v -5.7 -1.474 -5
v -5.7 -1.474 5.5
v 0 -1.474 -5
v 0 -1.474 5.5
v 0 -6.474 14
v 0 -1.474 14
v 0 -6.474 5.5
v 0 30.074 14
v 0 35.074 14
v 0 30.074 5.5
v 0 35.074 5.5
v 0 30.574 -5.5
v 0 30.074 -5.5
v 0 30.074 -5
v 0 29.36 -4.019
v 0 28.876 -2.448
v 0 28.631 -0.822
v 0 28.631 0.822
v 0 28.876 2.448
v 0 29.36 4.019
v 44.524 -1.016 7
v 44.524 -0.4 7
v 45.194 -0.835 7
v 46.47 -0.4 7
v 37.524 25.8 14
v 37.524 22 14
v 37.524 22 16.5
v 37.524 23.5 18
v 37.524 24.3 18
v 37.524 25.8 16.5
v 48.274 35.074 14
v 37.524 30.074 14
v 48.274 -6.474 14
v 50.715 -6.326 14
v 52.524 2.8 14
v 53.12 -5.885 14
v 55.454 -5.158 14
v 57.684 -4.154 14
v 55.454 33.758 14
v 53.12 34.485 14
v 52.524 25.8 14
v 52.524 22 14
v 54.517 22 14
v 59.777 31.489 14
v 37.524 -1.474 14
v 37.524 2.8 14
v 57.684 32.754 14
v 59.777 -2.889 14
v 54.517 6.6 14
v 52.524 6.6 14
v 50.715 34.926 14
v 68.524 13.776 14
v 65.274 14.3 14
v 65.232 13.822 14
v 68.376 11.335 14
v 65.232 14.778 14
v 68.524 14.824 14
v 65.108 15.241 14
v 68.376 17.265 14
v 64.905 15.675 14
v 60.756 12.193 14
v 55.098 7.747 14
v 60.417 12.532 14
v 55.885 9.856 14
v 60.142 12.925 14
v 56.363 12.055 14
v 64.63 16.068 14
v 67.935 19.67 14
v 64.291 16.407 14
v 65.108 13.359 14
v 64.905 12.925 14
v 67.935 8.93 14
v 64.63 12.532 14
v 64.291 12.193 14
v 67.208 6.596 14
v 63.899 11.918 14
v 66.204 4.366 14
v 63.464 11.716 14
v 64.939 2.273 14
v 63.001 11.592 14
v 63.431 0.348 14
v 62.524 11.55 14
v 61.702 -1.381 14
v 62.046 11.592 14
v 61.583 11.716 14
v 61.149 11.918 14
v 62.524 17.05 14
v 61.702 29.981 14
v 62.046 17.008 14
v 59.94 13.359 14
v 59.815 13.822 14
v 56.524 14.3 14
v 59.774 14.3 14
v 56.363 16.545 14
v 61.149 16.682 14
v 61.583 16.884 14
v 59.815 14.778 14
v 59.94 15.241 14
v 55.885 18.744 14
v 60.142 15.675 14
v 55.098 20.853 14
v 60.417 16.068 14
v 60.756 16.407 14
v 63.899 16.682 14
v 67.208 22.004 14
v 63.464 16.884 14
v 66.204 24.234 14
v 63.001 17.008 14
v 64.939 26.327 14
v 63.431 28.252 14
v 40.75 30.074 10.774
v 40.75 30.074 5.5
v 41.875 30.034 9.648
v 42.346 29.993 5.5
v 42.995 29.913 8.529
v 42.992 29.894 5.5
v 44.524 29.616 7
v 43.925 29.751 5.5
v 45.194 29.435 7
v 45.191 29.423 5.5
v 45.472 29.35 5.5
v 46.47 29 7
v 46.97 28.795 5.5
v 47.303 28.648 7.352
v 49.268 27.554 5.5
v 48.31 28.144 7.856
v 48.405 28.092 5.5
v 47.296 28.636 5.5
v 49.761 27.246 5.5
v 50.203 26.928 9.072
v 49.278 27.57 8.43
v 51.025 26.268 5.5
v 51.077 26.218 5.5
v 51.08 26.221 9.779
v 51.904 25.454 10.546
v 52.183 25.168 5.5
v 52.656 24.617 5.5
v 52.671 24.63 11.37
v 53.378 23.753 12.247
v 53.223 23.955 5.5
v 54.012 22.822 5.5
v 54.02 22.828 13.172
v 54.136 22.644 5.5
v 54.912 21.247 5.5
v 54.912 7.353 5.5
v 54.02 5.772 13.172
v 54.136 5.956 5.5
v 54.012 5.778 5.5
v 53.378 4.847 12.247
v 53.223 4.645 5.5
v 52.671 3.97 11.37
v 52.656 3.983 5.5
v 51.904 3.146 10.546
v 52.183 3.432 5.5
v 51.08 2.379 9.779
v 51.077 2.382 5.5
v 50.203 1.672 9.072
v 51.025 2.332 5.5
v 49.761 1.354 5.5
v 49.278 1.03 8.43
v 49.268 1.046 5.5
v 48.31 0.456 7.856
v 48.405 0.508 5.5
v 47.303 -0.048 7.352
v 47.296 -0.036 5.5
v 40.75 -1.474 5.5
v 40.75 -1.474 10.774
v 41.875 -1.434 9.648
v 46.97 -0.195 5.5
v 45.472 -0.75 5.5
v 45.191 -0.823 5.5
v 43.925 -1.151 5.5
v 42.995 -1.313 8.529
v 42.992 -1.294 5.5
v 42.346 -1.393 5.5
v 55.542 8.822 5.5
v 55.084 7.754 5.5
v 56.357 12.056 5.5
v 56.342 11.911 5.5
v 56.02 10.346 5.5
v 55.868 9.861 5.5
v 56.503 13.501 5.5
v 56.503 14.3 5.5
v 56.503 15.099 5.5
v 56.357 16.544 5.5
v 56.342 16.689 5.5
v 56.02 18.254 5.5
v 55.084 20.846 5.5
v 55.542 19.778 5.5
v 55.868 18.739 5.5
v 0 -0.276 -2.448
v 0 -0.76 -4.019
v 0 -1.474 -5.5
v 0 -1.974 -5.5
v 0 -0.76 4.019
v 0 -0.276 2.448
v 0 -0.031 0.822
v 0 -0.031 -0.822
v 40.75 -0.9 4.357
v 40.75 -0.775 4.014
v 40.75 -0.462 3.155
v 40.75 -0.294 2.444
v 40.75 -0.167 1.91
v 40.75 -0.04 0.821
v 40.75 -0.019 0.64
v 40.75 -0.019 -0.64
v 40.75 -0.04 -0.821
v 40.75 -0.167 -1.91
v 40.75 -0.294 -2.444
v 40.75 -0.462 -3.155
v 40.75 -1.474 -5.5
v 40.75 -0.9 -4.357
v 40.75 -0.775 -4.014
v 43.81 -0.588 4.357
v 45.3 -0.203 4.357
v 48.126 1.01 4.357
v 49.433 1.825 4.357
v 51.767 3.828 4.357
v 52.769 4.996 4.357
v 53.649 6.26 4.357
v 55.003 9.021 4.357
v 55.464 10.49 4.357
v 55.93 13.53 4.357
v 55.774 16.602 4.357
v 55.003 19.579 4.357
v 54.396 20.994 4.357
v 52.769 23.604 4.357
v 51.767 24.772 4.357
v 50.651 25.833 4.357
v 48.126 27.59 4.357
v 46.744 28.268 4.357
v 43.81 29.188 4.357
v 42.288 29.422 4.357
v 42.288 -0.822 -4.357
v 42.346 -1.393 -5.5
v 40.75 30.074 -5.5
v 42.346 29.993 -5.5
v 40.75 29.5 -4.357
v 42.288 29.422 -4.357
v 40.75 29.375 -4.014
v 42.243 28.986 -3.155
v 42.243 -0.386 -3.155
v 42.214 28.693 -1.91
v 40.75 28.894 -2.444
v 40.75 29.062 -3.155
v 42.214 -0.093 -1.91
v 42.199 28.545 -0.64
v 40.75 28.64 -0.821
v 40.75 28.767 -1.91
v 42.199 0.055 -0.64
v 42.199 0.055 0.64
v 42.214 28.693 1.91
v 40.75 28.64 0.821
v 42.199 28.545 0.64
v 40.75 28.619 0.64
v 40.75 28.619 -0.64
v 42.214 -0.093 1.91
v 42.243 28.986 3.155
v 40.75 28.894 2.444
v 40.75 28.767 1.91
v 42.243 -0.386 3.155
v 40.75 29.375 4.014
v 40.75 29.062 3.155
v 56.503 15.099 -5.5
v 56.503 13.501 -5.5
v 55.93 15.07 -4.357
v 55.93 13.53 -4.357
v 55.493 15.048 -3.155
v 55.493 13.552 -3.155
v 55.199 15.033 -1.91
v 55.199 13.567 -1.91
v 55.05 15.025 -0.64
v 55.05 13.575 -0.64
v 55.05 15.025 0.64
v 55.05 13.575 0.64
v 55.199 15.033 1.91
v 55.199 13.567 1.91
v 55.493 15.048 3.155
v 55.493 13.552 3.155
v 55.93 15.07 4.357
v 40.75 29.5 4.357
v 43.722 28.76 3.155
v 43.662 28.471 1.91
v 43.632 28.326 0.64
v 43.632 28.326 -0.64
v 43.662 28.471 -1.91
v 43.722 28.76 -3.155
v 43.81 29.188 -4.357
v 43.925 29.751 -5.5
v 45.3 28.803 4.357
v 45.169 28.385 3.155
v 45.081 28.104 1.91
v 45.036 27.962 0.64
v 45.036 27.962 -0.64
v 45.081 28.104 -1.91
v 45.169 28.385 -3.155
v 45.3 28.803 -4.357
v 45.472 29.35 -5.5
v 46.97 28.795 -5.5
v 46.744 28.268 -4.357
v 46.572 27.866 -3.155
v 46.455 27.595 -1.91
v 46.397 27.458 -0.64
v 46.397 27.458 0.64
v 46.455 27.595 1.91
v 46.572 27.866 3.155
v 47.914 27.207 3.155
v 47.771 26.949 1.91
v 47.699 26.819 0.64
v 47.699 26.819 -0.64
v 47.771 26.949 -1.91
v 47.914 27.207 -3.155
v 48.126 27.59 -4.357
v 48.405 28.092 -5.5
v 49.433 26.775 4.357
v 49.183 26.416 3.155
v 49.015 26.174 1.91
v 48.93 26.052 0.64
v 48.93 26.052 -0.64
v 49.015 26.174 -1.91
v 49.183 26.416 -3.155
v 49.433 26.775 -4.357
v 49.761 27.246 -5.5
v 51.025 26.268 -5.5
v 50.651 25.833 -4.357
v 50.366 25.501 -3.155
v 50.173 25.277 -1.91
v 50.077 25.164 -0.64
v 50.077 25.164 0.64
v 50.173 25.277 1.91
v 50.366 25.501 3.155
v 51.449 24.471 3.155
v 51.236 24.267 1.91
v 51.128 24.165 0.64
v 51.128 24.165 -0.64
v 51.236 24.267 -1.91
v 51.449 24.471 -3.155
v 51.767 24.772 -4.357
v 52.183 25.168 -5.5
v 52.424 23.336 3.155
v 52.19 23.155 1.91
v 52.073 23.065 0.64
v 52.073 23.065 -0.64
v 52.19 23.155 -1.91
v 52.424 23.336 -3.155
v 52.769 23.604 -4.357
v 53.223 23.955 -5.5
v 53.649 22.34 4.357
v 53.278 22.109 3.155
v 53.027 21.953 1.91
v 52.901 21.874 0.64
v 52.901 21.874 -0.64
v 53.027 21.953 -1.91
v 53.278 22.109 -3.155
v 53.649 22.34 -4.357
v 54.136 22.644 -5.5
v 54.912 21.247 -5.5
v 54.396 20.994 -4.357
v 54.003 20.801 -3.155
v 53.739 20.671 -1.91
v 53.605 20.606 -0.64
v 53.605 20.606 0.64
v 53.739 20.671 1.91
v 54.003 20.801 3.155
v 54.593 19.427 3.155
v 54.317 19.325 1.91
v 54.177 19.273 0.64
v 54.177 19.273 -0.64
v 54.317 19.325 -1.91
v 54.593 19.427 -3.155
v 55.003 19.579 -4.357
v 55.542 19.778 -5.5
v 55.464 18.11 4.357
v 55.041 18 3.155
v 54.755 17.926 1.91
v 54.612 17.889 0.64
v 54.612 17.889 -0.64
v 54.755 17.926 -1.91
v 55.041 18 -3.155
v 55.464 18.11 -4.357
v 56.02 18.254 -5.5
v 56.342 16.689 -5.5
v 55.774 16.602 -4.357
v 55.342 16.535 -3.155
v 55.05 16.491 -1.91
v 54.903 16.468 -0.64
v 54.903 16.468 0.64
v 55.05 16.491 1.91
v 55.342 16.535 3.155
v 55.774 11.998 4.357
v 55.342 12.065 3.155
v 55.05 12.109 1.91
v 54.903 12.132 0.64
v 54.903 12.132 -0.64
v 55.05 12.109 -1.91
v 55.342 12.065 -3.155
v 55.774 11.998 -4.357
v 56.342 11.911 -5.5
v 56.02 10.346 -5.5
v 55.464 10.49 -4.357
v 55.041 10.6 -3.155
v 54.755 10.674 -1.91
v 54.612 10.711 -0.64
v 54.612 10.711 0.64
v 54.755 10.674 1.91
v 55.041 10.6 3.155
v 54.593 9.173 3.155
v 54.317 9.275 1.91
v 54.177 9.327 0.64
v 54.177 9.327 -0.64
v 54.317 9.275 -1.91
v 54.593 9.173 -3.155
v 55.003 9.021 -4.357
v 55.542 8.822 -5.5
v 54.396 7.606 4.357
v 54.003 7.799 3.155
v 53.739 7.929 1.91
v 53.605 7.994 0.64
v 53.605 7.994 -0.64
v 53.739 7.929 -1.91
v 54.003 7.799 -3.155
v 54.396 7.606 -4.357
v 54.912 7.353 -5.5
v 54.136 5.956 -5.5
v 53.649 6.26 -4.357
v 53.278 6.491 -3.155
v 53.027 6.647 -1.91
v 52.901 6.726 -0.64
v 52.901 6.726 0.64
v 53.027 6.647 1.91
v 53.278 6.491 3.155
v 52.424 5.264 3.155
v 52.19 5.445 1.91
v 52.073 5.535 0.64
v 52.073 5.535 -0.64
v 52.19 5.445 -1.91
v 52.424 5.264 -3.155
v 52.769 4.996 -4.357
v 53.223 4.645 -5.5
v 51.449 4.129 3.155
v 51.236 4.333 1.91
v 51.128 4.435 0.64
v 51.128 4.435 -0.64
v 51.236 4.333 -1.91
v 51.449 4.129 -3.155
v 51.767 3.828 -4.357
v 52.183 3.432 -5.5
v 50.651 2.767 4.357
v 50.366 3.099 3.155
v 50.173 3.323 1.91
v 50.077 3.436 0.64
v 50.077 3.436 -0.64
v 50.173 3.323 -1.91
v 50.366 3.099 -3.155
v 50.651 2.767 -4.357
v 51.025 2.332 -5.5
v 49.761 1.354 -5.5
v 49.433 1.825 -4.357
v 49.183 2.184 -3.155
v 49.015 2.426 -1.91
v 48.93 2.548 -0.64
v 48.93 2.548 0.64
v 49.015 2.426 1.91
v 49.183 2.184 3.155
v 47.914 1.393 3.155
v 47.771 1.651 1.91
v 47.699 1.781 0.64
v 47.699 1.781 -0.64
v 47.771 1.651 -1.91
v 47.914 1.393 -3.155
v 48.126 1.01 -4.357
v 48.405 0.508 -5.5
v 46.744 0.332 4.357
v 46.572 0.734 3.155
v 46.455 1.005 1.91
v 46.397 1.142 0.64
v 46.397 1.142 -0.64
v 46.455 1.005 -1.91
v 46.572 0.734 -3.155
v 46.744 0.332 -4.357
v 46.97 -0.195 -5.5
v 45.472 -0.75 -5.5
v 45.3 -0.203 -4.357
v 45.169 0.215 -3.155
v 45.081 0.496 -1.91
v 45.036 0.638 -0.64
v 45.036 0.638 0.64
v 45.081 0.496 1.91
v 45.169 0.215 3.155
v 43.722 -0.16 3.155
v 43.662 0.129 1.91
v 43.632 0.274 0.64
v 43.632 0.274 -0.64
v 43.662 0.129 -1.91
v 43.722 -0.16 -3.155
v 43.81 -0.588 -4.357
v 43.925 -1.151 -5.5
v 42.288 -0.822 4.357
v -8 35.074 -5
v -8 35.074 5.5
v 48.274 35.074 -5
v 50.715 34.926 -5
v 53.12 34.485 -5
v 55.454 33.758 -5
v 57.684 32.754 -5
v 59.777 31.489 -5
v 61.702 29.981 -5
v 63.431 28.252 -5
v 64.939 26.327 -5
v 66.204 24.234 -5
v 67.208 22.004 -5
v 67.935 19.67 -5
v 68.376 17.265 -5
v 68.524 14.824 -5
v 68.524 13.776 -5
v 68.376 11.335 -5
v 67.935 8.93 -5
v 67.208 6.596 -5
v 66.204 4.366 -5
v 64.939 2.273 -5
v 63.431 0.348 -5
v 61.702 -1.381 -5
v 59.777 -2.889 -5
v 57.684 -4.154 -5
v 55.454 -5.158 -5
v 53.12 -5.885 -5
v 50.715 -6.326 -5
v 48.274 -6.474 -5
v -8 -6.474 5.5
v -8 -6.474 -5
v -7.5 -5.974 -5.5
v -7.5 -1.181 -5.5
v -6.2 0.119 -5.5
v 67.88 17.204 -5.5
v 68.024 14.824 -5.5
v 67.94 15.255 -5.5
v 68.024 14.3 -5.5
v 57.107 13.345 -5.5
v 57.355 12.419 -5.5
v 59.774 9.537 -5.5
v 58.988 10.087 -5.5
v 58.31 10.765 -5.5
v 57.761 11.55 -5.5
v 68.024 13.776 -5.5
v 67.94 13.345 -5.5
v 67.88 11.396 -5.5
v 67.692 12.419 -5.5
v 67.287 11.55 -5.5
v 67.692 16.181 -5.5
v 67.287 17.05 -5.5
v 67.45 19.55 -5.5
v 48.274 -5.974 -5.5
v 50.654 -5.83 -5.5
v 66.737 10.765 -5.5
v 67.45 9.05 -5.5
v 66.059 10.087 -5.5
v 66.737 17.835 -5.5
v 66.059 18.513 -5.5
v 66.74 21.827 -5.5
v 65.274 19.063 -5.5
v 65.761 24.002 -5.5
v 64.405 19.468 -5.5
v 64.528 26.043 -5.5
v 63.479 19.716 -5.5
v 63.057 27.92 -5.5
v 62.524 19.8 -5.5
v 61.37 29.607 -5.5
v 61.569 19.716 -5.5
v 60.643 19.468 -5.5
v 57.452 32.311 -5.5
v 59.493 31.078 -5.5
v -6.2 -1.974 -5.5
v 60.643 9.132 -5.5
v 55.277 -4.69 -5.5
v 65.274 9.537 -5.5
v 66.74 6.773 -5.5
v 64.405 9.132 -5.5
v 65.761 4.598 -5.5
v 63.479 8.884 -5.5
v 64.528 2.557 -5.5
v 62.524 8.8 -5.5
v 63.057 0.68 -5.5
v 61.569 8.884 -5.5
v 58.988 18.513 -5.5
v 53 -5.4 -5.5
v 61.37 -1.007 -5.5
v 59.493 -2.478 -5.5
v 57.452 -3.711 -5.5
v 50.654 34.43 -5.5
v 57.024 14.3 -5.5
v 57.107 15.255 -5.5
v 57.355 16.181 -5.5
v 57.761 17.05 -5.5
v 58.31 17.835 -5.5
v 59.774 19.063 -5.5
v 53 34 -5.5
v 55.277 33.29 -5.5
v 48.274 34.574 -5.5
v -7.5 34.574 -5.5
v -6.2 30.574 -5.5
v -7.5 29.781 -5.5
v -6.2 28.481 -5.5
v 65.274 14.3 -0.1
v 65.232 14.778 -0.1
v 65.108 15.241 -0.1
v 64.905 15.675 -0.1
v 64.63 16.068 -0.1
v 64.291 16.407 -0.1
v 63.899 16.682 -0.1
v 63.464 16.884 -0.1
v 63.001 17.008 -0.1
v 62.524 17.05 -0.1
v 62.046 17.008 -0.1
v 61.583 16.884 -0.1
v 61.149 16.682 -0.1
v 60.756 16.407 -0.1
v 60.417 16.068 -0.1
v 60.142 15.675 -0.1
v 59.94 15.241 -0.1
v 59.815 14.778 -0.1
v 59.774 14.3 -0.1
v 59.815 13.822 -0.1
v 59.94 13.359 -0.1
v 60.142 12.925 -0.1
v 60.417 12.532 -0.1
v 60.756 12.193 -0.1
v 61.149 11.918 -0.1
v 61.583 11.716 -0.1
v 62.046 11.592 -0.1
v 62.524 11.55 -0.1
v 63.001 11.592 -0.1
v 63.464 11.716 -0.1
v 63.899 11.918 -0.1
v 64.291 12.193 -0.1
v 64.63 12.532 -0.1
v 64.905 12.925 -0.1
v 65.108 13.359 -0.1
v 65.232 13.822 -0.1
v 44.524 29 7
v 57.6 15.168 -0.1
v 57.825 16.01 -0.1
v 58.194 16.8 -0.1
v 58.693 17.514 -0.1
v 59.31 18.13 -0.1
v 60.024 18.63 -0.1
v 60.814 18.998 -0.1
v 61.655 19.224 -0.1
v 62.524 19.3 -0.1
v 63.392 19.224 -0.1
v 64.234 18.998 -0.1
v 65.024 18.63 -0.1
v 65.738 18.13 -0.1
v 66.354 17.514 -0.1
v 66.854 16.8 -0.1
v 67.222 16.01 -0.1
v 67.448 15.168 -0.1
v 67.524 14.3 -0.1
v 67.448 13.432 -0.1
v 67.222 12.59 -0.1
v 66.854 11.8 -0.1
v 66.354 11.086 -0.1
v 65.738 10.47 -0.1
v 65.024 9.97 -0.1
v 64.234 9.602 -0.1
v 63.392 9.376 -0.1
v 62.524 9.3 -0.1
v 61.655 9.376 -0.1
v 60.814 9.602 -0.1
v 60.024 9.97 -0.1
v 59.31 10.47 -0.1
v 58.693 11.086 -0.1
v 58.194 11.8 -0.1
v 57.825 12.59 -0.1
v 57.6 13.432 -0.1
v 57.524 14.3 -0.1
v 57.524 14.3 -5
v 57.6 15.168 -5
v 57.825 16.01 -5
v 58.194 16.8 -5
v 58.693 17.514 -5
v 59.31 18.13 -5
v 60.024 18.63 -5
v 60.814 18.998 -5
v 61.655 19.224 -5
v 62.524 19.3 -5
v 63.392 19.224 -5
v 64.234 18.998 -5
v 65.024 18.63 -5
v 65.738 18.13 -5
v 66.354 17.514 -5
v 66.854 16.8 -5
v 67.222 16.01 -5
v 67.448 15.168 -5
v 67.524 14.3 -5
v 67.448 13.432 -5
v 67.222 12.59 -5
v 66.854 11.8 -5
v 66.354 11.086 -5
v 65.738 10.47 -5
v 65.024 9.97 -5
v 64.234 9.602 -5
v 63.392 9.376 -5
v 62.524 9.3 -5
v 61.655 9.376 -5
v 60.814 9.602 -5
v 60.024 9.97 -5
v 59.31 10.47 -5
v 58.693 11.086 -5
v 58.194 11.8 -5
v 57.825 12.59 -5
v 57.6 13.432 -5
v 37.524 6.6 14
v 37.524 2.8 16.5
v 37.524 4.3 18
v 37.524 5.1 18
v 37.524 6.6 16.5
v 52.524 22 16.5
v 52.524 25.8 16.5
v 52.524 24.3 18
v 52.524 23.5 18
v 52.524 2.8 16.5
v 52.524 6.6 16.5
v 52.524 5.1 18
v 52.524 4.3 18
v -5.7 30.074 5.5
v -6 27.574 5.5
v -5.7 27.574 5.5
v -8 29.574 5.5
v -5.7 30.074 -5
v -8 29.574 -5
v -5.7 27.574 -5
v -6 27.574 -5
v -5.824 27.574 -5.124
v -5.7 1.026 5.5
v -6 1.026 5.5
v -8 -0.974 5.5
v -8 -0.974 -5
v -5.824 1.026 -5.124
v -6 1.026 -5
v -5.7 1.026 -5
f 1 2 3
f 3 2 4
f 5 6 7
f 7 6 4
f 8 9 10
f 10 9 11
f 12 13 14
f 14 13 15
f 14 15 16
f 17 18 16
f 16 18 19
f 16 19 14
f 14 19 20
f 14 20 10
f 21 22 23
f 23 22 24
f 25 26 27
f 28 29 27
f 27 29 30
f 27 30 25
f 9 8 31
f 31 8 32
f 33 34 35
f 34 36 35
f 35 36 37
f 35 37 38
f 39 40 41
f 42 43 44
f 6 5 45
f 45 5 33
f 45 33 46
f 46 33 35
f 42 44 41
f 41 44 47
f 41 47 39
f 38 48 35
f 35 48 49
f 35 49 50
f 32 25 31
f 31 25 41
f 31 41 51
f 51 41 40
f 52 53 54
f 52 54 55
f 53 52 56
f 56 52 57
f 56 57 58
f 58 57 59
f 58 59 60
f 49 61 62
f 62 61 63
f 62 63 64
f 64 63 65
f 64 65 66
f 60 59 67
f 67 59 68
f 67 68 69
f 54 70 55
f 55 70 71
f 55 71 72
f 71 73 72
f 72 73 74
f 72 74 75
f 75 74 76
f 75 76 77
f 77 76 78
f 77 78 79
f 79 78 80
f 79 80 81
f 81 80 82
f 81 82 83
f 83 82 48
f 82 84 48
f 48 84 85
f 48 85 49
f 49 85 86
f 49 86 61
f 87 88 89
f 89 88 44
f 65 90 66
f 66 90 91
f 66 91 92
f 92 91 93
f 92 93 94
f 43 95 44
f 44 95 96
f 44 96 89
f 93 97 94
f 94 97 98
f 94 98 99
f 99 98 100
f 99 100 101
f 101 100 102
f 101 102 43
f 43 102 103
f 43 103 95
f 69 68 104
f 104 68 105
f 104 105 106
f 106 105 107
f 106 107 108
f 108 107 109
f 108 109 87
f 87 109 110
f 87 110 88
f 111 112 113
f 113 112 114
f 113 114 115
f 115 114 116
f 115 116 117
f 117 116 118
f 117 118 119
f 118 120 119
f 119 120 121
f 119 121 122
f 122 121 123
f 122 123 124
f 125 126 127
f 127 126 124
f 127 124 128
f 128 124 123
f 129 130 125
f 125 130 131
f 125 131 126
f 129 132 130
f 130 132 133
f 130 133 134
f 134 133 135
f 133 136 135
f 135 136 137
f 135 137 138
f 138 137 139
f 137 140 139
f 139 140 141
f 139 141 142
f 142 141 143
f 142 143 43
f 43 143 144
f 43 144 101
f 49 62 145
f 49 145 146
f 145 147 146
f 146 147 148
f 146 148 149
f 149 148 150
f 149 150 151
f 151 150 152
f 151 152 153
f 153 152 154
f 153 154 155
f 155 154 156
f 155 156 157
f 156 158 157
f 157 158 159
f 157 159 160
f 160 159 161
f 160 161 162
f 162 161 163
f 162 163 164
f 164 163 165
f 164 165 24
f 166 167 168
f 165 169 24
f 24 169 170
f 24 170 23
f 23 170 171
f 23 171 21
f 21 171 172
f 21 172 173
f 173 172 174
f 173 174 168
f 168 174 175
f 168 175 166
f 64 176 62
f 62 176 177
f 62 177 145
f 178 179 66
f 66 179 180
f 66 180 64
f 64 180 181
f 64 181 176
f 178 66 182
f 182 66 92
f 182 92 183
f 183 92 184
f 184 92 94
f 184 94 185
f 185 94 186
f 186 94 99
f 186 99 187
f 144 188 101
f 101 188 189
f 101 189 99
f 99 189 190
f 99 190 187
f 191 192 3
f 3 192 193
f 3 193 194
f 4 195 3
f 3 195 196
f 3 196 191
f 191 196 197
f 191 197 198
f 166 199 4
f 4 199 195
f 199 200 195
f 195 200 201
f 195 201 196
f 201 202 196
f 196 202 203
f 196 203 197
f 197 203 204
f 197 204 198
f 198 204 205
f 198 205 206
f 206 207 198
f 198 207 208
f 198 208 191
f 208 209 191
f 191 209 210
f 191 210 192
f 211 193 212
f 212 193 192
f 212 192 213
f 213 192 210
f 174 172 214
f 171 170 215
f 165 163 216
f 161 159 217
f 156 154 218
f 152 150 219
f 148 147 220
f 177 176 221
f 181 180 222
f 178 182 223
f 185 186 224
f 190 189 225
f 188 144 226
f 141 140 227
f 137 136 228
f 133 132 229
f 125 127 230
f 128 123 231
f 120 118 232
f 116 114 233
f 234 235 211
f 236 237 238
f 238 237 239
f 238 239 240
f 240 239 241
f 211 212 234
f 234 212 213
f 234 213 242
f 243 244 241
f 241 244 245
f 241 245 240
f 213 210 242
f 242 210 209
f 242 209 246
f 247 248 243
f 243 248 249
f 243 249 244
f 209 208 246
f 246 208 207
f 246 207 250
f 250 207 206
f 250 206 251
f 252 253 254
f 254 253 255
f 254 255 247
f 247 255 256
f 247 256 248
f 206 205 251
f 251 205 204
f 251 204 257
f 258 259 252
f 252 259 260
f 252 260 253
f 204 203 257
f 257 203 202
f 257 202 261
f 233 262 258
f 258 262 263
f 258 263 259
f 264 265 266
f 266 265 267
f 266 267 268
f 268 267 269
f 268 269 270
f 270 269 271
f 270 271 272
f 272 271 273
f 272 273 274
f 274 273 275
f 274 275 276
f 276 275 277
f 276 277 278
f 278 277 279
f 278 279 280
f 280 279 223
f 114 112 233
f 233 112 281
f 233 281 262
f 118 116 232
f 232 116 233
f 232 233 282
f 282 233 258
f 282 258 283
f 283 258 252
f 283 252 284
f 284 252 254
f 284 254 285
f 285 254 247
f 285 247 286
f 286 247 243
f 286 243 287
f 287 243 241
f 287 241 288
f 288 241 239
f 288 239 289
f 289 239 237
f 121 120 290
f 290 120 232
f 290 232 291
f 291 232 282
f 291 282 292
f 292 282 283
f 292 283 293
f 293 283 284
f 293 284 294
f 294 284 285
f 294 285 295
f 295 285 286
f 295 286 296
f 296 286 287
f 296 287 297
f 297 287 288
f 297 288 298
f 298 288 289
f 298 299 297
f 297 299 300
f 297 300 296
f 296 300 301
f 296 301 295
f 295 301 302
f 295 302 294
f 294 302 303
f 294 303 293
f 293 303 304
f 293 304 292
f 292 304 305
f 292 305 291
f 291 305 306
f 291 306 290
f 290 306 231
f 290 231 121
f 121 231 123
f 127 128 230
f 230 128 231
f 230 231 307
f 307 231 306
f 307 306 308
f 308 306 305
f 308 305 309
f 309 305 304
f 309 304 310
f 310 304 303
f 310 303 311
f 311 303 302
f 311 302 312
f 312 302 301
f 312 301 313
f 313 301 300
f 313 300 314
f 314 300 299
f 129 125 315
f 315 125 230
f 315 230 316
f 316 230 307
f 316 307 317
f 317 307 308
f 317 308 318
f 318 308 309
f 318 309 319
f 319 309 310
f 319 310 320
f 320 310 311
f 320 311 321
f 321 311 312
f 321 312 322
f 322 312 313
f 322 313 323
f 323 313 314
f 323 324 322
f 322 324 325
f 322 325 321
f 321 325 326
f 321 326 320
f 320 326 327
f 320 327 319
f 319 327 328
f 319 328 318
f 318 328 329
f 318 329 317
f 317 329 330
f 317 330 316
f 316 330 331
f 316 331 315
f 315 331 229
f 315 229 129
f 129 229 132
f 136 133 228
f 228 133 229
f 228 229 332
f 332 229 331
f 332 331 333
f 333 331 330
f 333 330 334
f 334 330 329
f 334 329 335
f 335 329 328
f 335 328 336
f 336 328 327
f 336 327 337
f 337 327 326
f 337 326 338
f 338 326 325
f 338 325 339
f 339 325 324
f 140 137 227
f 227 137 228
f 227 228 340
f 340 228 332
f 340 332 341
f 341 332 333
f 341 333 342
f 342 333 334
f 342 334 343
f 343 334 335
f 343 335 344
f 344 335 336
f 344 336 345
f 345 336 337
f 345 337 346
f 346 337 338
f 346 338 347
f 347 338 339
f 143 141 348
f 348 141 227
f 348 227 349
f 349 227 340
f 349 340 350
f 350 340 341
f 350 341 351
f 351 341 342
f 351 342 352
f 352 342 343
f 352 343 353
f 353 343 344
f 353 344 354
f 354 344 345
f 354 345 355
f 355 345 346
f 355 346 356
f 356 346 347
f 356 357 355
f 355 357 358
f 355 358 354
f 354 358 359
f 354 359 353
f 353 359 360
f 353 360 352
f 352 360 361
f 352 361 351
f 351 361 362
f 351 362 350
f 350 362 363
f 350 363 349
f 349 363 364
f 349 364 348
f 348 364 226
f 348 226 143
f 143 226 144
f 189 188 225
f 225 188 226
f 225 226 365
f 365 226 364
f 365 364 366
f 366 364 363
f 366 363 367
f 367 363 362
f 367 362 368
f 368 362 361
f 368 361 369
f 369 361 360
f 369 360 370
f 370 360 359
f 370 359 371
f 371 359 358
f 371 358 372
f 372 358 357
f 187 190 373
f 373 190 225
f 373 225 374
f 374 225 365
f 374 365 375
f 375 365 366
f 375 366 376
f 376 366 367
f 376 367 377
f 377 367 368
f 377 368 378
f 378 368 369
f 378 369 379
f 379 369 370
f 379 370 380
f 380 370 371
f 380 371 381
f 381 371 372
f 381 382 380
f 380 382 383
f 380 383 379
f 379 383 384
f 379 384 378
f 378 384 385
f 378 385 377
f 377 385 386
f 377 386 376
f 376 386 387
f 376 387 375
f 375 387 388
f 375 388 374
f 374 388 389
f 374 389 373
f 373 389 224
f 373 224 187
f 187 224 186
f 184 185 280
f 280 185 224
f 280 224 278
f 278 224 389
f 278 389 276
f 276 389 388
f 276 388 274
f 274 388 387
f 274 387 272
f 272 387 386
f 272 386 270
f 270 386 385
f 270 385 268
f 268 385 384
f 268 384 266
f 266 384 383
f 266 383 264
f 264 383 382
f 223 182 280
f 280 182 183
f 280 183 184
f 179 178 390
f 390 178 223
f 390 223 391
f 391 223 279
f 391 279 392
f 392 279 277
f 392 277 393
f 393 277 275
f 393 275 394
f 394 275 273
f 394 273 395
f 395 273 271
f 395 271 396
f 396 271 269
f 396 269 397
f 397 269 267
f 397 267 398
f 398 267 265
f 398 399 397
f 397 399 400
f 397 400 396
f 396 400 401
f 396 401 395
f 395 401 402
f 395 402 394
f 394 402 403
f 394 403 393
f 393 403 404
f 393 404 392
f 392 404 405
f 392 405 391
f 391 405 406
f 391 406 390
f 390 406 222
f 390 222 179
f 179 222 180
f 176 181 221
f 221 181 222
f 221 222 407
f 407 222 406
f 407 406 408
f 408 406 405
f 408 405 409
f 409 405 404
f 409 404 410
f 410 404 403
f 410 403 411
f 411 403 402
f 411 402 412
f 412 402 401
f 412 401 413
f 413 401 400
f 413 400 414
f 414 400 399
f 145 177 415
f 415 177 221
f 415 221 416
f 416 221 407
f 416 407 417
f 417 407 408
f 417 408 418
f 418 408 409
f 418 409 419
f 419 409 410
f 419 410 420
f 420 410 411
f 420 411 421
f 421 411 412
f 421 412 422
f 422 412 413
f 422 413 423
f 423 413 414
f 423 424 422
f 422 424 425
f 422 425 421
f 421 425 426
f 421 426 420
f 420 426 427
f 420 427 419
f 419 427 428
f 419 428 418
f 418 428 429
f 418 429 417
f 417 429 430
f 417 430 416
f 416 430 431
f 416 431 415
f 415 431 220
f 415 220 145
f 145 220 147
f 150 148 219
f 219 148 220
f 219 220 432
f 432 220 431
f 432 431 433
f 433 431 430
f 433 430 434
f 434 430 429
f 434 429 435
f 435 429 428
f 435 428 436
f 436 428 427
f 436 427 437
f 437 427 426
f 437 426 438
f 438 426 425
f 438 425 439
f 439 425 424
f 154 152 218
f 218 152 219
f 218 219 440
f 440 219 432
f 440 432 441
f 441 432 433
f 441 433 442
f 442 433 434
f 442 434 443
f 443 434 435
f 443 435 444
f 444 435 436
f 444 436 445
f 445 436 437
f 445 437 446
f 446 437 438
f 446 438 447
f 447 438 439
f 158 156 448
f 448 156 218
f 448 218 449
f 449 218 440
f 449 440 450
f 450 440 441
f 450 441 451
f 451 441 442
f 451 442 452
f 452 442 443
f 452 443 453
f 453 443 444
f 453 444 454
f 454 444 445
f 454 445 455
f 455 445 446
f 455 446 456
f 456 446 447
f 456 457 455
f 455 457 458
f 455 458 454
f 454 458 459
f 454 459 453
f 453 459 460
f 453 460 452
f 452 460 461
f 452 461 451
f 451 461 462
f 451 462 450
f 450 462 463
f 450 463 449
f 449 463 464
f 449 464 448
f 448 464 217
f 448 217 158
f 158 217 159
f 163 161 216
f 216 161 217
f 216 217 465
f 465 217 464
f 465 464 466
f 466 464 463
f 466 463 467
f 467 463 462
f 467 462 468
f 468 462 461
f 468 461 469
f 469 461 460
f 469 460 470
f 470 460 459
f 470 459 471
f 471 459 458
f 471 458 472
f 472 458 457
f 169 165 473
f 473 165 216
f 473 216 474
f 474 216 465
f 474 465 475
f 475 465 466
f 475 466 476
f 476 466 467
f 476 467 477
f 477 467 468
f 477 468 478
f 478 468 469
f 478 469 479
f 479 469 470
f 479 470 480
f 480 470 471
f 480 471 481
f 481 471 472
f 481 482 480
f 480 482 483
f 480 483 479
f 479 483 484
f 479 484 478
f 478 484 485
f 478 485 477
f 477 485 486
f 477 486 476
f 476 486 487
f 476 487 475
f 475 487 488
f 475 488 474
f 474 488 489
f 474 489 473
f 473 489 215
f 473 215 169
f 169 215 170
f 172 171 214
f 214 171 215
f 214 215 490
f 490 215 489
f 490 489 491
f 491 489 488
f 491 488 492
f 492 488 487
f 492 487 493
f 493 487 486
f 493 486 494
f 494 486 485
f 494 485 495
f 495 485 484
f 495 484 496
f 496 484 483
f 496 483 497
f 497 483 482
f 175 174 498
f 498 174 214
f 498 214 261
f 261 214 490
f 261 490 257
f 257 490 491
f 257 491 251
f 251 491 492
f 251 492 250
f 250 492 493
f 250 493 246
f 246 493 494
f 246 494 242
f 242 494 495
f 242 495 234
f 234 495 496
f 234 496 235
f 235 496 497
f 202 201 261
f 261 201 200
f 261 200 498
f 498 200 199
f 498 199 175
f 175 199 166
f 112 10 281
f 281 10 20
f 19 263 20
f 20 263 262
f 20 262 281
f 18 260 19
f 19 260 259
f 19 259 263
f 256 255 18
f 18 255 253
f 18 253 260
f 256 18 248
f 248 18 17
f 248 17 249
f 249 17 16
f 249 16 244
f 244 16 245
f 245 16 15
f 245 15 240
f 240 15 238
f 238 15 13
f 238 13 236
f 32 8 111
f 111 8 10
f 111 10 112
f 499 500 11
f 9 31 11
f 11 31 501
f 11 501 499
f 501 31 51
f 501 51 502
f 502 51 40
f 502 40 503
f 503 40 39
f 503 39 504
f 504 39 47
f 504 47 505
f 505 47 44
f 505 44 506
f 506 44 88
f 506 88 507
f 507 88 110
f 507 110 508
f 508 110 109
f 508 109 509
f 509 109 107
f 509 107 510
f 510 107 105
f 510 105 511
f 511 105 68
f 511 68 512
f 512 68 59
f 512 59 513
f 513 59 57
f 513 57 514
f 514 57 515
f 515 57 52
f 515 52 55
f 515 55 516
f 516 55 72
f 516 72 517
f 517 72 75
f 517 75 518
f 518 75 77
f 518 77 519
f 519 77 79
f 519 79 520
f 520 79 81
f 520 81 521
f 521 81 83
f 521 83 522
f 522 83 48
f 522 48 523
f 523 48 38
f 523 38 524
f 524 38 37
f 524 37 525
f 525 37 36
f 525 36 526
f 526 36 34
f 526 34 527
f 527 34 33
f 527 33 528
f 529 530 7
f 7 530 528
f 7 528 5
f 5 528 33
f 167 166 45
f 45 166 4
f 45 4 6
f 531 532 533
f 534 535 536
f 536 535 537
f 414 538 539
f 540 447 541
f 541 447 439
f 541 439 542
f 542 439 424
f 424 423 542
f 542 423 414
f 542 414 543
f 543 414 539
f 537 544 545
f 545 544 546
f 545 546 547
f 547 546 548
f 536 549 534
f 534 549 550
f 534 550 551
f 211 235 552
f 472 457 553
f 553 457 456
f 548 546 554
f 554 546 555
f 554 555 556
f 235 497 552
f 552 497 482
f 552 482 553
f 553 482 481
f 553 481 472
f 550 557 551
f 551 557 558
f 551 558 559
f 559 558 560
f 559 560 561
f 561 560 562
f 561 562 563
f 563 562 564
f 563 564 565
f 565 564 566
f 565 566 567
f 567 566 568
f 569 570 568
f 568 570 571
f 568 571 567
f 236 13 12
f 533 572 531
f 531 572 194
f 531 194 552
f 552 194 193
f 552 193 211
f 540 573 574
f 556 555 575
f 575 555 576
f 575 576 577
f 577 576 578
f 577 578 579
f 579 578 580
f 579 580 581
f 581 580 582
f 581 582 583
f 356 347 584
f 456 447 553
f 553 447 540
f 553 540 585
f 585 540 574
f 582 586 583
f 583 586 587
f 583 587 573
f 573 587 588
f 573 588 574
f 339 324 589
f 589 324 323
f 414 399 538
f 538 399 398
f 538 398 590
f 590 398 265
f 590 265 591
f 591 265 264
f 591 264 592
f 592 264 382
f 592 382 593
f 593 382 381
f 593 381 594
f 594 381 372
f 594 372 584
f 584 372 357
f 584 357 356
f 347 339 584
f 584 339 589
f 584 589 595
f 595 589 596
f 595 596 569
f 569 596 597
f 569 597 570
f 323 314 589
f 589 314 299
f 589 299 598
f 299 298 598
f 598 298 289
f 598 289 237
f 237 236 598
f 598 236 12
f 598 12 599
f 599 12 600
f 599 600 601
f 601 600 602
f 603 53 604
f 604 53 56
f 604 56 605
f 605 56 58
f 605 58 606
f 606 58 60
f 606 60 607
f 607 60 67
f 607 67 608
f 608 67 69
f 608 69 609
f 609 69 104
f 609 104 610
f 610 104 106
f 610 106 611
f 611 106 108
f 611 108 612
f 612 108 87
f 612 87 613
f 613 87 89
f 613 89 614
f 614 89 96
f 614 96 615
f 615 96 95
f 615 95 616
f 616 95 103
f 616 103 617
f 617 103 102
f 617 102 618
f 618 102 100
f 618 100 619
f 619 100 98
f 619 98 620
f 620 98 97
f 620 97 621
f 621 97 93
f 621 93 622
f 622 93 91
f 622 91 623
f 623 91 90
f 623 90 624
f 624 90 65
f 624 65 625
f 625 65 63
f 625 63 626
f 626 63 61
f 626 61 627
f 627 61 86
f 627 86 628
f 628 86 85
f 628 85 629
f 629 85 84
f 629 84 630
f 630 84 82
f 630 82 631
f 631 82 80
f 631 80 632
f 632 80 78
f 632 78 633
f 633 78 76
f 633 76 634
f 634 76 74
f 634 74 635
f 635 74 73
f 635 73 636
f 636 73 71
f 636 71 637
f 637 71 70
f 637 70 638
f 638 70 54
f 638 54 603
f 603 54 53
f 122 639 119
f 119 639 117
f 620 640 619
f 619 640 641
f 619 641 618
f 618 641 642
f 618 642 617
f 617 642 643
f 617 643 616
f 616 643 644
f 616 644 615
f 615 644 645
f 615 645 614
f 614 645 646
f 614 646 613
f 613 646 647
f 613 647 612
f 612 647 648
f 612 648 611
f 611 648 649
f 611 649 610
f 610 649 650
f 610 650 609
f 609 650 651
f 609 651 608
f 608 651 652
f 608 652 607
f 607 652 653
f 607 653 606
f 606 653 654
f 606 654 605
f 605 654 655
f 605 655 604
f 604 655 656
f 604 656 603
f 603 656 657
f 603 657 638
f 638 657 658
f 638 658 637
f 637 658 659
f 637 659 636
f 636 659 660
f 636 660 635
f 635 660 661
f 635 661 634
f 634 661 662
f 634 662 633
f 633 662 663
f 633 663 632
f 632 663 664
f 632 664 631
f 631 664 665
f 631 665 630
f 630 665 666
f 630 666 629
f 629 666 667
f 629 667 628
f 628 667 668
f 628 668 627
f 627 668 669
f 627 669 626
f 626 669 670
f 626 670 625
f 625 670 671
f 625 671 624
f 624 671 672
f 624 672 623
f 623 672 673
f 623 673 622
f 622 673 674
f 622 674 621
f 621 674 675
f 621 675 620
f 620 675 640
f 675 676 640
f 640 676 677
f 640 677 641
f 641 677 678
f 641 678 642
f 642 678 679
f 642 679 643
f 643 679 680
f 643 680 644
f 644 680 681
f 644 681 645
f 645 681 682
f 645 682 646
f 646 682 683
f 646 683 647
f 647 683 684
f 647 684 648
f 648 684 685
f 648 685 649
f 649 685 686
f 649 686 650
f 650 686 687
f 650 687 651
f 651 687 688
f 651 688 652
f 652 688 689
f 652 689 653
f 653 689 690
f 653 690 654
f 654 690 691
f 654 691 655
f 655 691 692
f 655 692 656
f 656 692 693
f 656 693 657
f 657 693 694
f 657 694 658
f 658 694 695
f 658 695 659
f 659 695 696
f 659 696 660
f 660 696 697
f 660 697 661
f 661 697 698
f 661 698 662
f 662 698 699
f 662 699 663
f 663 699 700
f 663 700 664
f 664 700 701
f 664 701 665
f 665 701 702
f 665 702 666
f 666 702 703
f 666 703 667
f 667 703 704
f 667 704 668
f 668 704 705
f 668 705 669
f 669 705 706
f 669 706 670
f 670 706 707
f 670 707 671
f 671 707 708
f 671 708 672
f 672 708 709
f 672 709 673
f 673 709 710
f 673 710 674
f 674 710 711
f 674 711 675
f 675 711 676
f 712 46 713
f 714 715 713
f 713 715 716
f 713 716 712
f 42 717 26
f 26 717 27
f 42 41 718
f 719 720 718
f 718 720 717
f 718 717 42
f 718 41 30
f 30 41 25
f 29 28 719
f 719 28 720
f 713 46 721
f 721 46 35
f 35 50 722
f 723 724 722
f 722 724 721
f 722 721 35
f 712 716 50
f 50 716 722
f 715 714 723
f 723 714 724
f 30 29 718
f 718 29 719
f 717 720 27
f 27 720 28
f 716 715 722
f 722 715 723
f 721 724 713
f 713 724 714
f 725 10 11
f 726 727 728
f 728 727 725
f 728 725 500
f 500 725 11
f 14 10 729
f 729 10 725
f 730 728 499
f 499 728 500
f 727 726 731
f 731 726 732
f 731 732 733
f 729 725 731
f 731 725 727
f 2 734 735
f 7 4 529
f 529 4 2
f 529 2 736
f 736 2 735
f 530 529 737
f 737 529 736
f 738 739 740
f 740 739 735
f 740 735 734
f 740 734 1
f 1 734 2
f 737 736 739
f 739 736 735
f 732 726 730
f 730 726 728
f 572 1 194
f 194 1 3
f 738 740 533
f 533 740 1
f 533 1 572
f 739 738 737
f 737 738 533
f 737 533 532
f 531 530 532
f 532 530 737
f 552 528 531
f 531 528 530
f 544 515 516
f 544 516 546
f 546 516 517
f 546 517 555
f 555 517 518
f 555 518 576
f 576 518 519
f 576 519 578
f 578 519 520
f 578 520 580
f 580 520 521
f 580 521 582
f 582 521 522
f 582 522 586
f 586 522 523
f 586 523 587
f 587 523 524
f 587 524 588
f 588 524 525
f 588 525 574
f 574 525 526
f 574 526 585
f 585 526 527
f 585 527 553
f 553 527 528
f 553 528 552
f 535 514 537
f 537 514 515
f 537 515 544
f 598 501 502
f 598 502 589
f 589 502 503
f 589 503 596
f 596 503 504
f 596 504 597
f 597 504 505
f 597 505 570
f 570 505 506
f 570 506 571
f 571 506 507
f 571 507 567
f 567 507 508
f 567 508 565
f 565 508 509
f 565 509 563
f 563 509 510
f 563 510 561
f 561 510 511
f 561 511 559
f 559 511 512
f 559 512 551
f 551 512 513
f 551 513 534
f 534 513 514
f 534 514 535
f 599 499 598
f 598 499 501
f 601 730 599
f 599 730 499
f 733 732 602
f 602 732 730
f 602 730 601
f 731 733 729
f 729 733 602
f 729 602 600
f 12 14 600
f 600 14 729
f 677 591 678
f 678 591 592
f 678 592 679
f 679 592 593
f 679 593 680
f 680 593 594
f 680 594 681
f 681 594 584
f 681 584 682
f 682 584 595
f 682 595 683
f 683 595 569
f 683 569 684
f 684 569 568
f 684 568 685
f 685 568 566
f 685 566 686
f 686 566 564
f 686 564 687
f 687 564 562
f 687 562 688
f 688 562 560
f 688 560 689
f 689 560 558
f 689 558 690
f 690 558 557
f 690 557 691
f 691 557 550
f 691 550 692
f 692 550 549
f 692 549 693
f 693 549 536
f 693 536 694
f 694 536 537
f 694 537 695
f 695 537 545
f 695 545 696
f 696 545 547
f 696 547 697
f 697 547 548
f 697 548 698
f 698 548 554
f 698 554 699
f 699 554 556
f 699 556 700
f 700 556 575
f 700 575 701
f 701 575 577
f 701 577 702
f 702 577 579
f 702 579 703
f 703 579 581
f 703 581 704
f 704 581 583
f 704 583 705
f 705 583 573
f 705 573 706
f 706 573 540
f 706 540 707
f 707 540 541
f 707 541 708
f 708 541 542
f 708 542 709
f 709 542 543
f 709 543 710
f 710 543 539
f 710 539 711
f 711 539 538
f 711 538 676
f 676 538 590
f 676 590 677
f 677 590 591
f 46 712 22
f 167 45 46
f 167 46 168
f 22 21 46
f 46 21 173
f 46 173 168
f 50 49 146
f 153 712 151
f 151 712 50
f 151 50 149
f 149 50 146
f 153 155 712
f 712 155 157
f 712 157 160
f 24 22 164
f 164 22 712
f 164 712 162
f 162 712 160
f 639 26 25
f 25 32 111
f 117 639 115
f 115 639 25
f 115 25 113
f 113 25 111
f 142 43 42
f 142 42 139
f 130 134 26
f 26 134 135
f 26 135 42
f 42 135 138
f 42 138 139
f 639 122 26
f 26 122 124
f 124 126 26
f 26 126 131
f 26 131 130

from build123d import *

# Parameters (mm, degrees)
BOSS_EXTRUDE1_DEPTH                                 = 14
BOSS_EXTRUDE1_DEPTH_BACK                            = 5.5
SKETCH3_R                                           = 2.750000000000022
BOSS_EXTRUDE2_DEPTH                                 = 7
CBORE_FOR_M5_HEX_SOCKET_HEAD_CAP_SCREW2_D           = 5.5
CBORE_FOR_M5_HEX_SOCKET_HEAD_CAP_SCREW2_CBORE_D     = 10
CBORE_FOR_M5_HEX_SOCKET_HEAD_CAP_SCREW2_CBORE_DEPTH = 5.4
SKETCH11_W                                          = 15
SKETCH11_H                                          = 3.8000000000000007
BOSS_EXTRUDE3_DEPTH                                 = 4
CHAMFER1_SIZE                                       = 1.5
CUT_EXTRUDE1_DEPTH                                  = 7
SKETCH13_W                                          = 15
SKETCH13_H                                          = 15.400000000000002
CUT_EXTRUDE2_DEPTH                                  = 7
CUT_EXTRUDE3_DEPTH                                  = 7
SKETCH15_W                                          = 11
SKETCH15_H                                          = 5
BOSS_EXTRUDE4_DEPTH                                 = 8
SKETCH16_W                                          = 2.3
SKETCH16_H                                          = 2.5
BOSS_EXTRUDE5_DEPTH                                 = 11
CHAMFER4_SIZE                                       = 2
CHAMFER3_SIZE                                       = 0.5
CHAMFER5_SIZE                                       = 7


# Some blends are built 0.0001 mm under size
with BuildPart() as part:
    # Sweep1: sweep along a path in Sketch1
    with BuildLine(Plane.XY) as sweep1_path:
        Line((0, 0), (40.75, 0))
        ThreePointArc((40.75, 0), (55.05, 14.3), (40.75, 28.6))
        Line((40.75, 28.6), (0, 28.599999999999998))
    # Sketch2 → Sweep1 (sweep)
    with BuildSketch(Plane(origin=(0, 0, 0), x_dir=(0, 0, -1), z_dir=(1, 0, 0))):
        with BuildLine():
            Line((-5.500000000000001, -1.4737205583711734), (5.499999999999999, -1.4737205583711734))
            ThreePointArc((5.499999999999999, -1.4737205583711734), (-1.9e-16, 1.78e-15), (-5.500000000000001, -1.4737205583711734))
        make_face()
    sweep(path=sweep1_path.line)

    # Sketch3 → Boss-Extrude1 (add, two sides: drawn at the far end of the back side and taken through both)
    with BuildSketch(Plane.XY.offset(-BOSS_EXTRUDE1_DEPTH_BACK)):
        with BuildLine():
            Line((-7e-17, 30.07372055837117), (0, 35.07372055837117))
            Line((0, 35.07372055837117), (48.273720558371174, 35.07372055837117))
            ThreePointArc((48.273720558371174, 35.07372055837117), (62.59263287739877, 29.14263287739876), (68.52372055837118, 14.82372055837117))
            Line((68.52372055837118, 14.82372055837117), (68.52372055837118, 13.776279441628832))
            ThreePointArc((68.52372055837118, 13.776279441628832), (62.59263287739876, -0.5426328773987557), (48.273720558371174, -6.473720558371171))
            Line((48.273720558371174, -6.473720558371171), (0, -6.473720558371174))
            Line((0, -6.473720558371174), (0, -1.4737205583711734))
            Line((0, -1.4737205583711734), (40.75, -1.4737205583711734))
            ThreePointArc((40.75, -1.4737205583711734), (56.523720558371174, 14.3), (40.75, 30.073720558371175))
            Line((40.75, 30.073720558371175), (-7e-17, 30.07372055837117))
        make_face()
        with Locations((62.52372055837116, 14.299999999999999)):
            Circle(SKETCH3_R, mode=Mode.SUBTRACT)
    extrude(amount=BOSS_EXTRUDE1_DEPTH + BOSS_EXTRUDE1_DEPTH_BACK)

    # Sketch10 → Boss-Extrude2 (add)
    with BuildSketch(Plane.XY.offset(14)):
        Polygon((33.523720558371174, 30.07372055837117), (56.523720558371174, 30.07372055837117), (56.52372055837118, -1.473720558371177), (33.523720558371174, -1.4737205583711734), align=None)
    extrude(amount=-BOSS_EXTRUDE2_DEPTH)

    # CBORE for M5 Hex Socket Head Cap Screw2 (through all)
    with Locations(Plane(origin=(0, 0, -5.5), x_dir=(-1, 0, 0), z_dir=(0, 0, -1))):
        with Locations((-62.523720558, 14.3)):
            CounterBoreHole(CBORE_FOR_M5_HEX_SOCKET_HEAD_CAP_SCREW2_D / 2, CBORE_FOR_M5_HEX_SOCKET_HEAD_CAP_SCREW2_CBORE_D / 2, CBORE_FOR_M5_HEX_SOCKET_HEAD_CAP_SCREW2_CBORE_DEPTH)

    # Sketch11 → Boss-Extrude3 (add)
    with BuildSketch(Plane.XY.offset(14)):
        with Locations((45.02372055837117, 23.9)):
            Rectangle(SKETCH11_W, SKETCH11_H)
        Polygon((37.52372055837117, 6.599999999999998), (52.52372055837117, 6.599999999999998), (52.523720558371174, 2.799999999999997), (37.52372055837117, 2.799999999999997), align=None)
    extrude(amount=BOSS_EXTRUDE3_DEPTH)

    # Chamfer1
    chamfer1_edges = [part.edges().sort_by_distance(p)[0] for p in [
        (45.02372055837117, 22, 18),
        (45.02372055837117, 25.8, 18),
        (45.02372055837117, 2.799999999999997, 18),
        (45.02372055837117, 6.599999999999998, 18),
    ]]
    chamfer(chamfer1_edges, length=CHAMFER1_SIZE)

    # Sketch12 → Cut-Extrude1 (cut)
    with BuildSketch(Plane.XY.offset(14)):
        Polygon((33.523720558371174, 30.07372055837117), (37.52372055837117, 30.07372055837117), (37.52372055837118, -1.4737205583711734), (33.523720558371174, -1.4737205583711734), align=None)
    extrude(amount=-CUT_EXTRUDE1_DEPTH, mode=Mode.SUBTRACT)

    # Sketch13 → Cut-Extrude2 (cut)
    with BuildSketch(Plane.XY.offset(14)):
        with Locations((45.02372055837117, 14.299999999999999)):
            Rectangle(SKETCH13_W, SKETCH13_H)
    extrude(amount=-CUT_EXTRUDE2_DEPTH, mode=Mode.SUBTRACT)

    # Sketch14 → Cut-Extrude3 (cut)
    with BuildSketch(Plane(origin=(0, 0, 7), x_dir=(-1, 0, 0), z_dir=(0, 0, -1))):
        with BuildLine():
            Line((-52.52372055837117, 22), (-54.51663576381613, 22))
            ThreePointArc((-54.51663576381613, 22), (-56.52372055837116, 14.3), (-54.516635763816126, 6.599999999999999))
            Line((-54.516635763816126, 6.599999999999999), (-52.52372055837117, 6.599999999999998))
            Line((-52.52372055837117, 6.599999999999998), (-52.52372055837117, 22))
        make_face()
    extrude(amount=-CUT_EXTRUDE3_DEPTH, mode=Mode.SUBTRACT)

    # Sketch15 → Boss-Extrude4 (add)
    with BuildSketch(Plane.ZY):
        with Locations((4.4e-16, 32.57372055837117)):
            Rectangle(SKETCH15_W, SKETCH15_H)
    boss_extrude4 = extrude(amount=BOSS_EXTRUDE4_DEPTH)

    # Sketch16 → Boss-Extrude5 (add)
    with BuildSketch(Plane(origin=(0, 0, -5.5), x_dir=(-1, 0, 0), z_dir=(0, 0, -1))):
        with Locations((6.850000000000001, 28.82372055837117)):
            Rectangle(SKETCH16_W, SKETCH16_H)
    boss_extrude5 = extrude(amount=-BOSS_EXTRUDE5_DEPTH)

    # Mirror1: Boss-Extrude4, Boss-Extrude5 across plane
    add(boss_extrude4.mirror(Plane(origin=(-6.1e-16, 14.299999999999997, 0), x_dir=(0, 0, 1), z_dir=(4e-17, -1, 0))))
    add(boss_extrude5.mirror(Plane(origin=(-6.1e-16, 14.299999999999997, 0), x_dir=(0, 0, 1), z_dir=(4e-17, -1, 0))))

    # Chamfer4
    chamfer4_edges = [part.edges().sort_by_distance(p)[0] for p in [
        (-8.000000000000002, 27.57372055837117, 0),
        (-8, 1.026279441628823, 0),
    ]]
    chamfer(chamfer4_edges, length=CHAMFER4_SIZE)

    # Chamfer3
    # the kernel refuses this chamfer: 0.5 mm, written as the material it takes off along each edge
    with BuildSketch(Plane(origin=(-8, 28.287879064388214, -5.5), x_dir=(0.9996219169112968, 0, -0.027495876610585647), z_dir=(-2.4e-16, 1, 0))) as chamfer3_piece_1:
        Polygon((CHAMFER3_SIZE * 0.999621916911, -CHAMFER3_SIZE * 0.0274958766106), (-CHAMFER3_SIZE * 0.0274958766106, -CHAMFER3_SIZE * 0.999621916911), (0, 0), align=None)
    extrude(amount=8.071682987965907, mode=Mode.SUBTRACT)
    with BuildSketch(Plane(origin=(48.273720558371174, 35.073720558371164, -5.5), x_dir=(0, -0.9996219169112968, -0.02749587661058574), z_dir=(-1, 1.3e-16, 0))) as chamfer3_piece_2:
        Polygon((CHAMFER3_SIZE * 0.999621916911, CHAMFER3_SIZE * 0.0274958766106), (-CHAMFER3_SIZE * 0.0274958766106, CHAMFER3_SIZE * 0.999621916911), (0, 0), align=None)
    extrude(amount=57.55956205235414, mode=Mode.SUBTRACT)
    with BuildSketch(Plane(origin=(48.273720558371195, 14.823720558371178, -5.5), x_dir=(-1.05e-15, 1, 0), z_dir=(-1, -1.05e-15, 0))) as chamfer3_piece_3:
        Polygon((20.249999999999986 - CHAMFER3_SIZE, 0), (20.249999999999986, -CHAMFER3_SIZE), (20.249999999999986, 0), align=None)
    revolve(axis=Axis((48.273720558371195, 14.823720558371178, -5.5), (0, 0, -1)), revolution_arc=90.00000000000009, mode=Mode.SUBTRACT)
    with BuildSketch(Plane(origin=(68.52372055837118, 14.82372055837117, -5.5), x_dir=(-0.9996219169112968, 0, -0.02749587661058574), z_dir=(0, -1, 0))) as chamfer3_piece_4:
        Polygon((CHAMFER3_SIZE * 0.999621916911, -CHAMFER3_SIZE * 0.0274958766106), (-CHAMFER3_SIZE * 0.0274958766106, -CHAMFER3_SIZE * 0.999621916911), (0, 0), align=None)
    extrude(amount=1.0474411167423376, mode=Mode.SUBTRACT)
    with BuildSketch(Plane(origin=(-2.56e-15, 30.07372055837117, -5.5), x_dir=(0, 0.9996219169112968, -0.02749587661058555), z_dir=(-1, -9e-17, 0))) as chamfer3_piece_5:
        Polygon((CHAMFER3_SIZE * 0.999621916911, -CHAMFER3_SIZE * 0.0274958766106), (-CHAMFER3_SIZE * 0.0274958766106, -CHAMFER3_SIZE * 0.999621916911), (0, 0), align=None)
    extrude(amount=5.699999999999999, mode=Mode.SUBTRACT)
    with BuildSketch(Plane(origin=(-5.700000000000003, 26.287879064388214, -5.5), x_dir=(-0.9996219169112968, 0, -0.027495876610585647), z_dir=(0, 1, 0))) as chamfer3_piece_6:
        Polygon((CHAMFER3_SIZE * 0.999621916911, CHAMFER3_SIZE * 0.0274958766106), (-CHAMFER3_SIZE * 0.0274958766106, CHAMFER3_SIZE * 0.999621916911), (0, 0), align=None)
    extrude(amount=3.785841493982957, mode=Mode.SUBTRACT)
    with BuildSketch(Plane(origin=(48.27372055837117, 13.776279441628848, -5.5), x_dir=(1, -7.9e-16, 0), z_dir=(7.9e-16, 1, 0))) as chamfer3_piece_7:
        Polygon((20.250000000000014 - CHAMFER3_SIZE, 0), (20.250000000000014, -CHAMFER3_SIZE), (20.250000000000014, 0), align=None)
    revolve(axis=Axis((48.27372055837117, 13.776279441628848, -5.5), (0, 0, -1)), revolution_arc=89.99999999999993, mode=Mode.SUBTRACT)
    with BuildSketch(Plane(origin=(-9.285841493982957, -6.473720558371173, -5.5), x_dir=(0, 0.9996219169112968, -0.027495876610585647), z_dir=(1, 1.6e-16, 0))) as chamfer3_piece_8:
        Polygon((CHAMFER3_SIZE * 0.999621916911, CHAMFER3_SIZE * 0.0274958766106), (-CHAMFER3_SIZE * 0.0274958766106, CHAMFER3_SIZE * 0.999621916911), (0, 0), align=None)
    extrude(amount=57.55956205235413, mode=Mode.SUBTRACT)
    with BuildSketch(Plane(origin=(-8, 0.312120935611782, -5.5), x_dir=(0.9996219169112968, 0, -0.027495876610585647), z_dir=(-2.4e-16, -1, 0))) as chamfer3_piece_9:
        Polygon((CHAMFER3_SIZE * 0.999621916911, CHAMFER3_SIZE * 0.0274958766106), (-CHAMFER3_SIZE * 0.0274958766106, CHAMFER3_SIZE * 0.999621916911), (0, 0), align=None)
    extrude(amount=8.071682987965918, mode=Mode.SUBTRACT)
    with BuildSketch(Plane(origin=(-1.22e-15, -1.473720558371177, -5.5), x_dir=(0, -0.9996219169112968, -0.027495876610585623), z_dir=(-1, 0, 0))) as chamfer3_piece_10:
        Polygon((CHAMFER3_SIZE * 0.999621916911, CHAMFER3_SIZE * 0.0274958766106), (-CHAMFER3_SIZE * 0.0274958766106, CHAMFER3_SIZE * 0.999621916911), (0, 0), align=None)
    extrude(amount=5.699999999999999, mode=Mode.SUBTRACT)
    with BuildSketch(Plane(origin=(-5.700000000000003, 2.312120935611784, -5.5), x_dir=(-0.9996219169112968, 0, -0.027495876610585647), z_dir=(9e-17, -1, 0))) as chamfer3_piece_11:
        Polygon((CHAMFER3_SIZE * 0.999621916911, -CHAMFER3_SIZE * 0.0274958766106), (-CHAMFER3_SIZE * 0.0274958766106, -CHAMFER3_SIZE * 0.999621916911), (0, 0), align=None)
    extrude(amount=3.7858414939829608, mode=Mode.SUBTRACT)
    with BuildSketch(Plane(origin=(-8.909227239926395, 30.482947798297563, -5.5), x_dir=(0.7068394360706736, 0.7068394360706736, -0.027495876610585765), z_dir=(0.7071067811865476, -0.7071067811865476, 0))) as chamfer3_piece_12:
        Polygon((CHAMFER3_SIZE * 0.999621916911, CHAMFER3_SIZE * 0.0274958766106), (-CHAMFER3_SIZE * 0.0274958766106, CHAMFER3_SIZE * 0.999621916911), (0, 0), align=None)
    extrude(amount=5.400110112712111, mode=Mode.SUBTRACT)
    with BuildSketch(Plane(origin=(-5.090772760073612, 1.9355066815552142, -5.5), x_dir=(0.7068394360706735, -0.7068394360706735, -0.02749587661058555), z_dir=(-0.7071067811865476, -0.7071067811865476, 0))) as chamfer3_piece_13:
        Polygon((CHAMFER3_SIZE * 0.999621916911, CHAMFER3_SIZE * 0.0274958766106), (-CHAMFER3_SIZE * 0.0274958766106, CHAMFER3_SIZE * 0.999621916911), (0, 0), align=None)
    extrude(amount=5.400110112712108, mode=Mode.SUBTRACT)
    with BuildSketch(Plane(origin=(62.523720558, 14.3, -5.5), x_dir=(-1, 0, 0), z_dir=(0, -1, 0))) as chamfer3_piece_14:
        Polygon((5 + CHAMFER3_SIZE, 0), (5, -CHAMFER3_SIZE), (5, 0), align=None)
    revolve(axis=Axis((62.523720558, 14.3, -5.5), (0, 0, -1)), mode=Mode.SUBTRACT)
    with BuildSketch(Plane(origin=(-5.700000000000003, 26.287879064388214, -5.5), x_dir=(-0.9996219169112968, 0, -0.027495876610585647), z_dir=(0, 1, 0))) as chamfer3_piece_15a_section:
        Polygon((CHAMFER3_SIZE * 0.999621916911, CHAMFER3_SIZE * 0.0274958766106), (-CHAMFER3_SIZE * 0.0274958766106, CHAMFER3_SIZE * 0.999621916911), (0, 0), align=None)
    chamfer3_piece_15a = extrude(amount=5.071682987965914, mode=Mode.PRIVATE)
    chamfer3_piece_15a = split(chamfer3_piece_15a, bisect_by=Plane(origin=(-5.86489681340297, 30.07372055837117, -5.335103186597029), z_dir=(-9e-17, 1, 0)), keep=Keep.TOP, mode=Mode.PRIVATE)
    with BuildSketch(Plane(origin=(-2.56e-15, 30.07372055837117, -5.5), x_dir=(0, 0.9996219169112968, -0.02749587661058555), z_dir=(-1, -9e-17, 0))) as chamfer3_piece_15b_section:
        Polygon((CHAMFER3_SIZE * 0.999621916911, -CHAMFER3_SIZE * 0.0274958766106), (-CHAMFER3_SIZE * 0.0274958766106, -CHAMFER3_SIZE * 0.999621916911), (0, 0), align=None)
    chamfer3_piece_15b = extrude(amount=6.985841493982957, mode=Mode.PRIVATE)
    chamfer3_piece_15b = split(chamfer3_piece_15b, bisect_by=Plane(origin=(-5.700000000000002, 30.238617371774144, -5.33510318659703), z_dir=(-1, 0, 0)), keep=Keep.TOP, mode=Mode.PRIVATE)
    chamfer3_piece_15 = chamfer3_piece_15a & chamfer3_piece_15b
    add(chamfer3_piece_15, mode=Mode.SUBTRACT)
    with BuildSketch(Plane(origin=(-1.22e-15, -1.473720558371177, -5.5), x_dir=(0, -0.9996219169112968, -0.027495876610585623), z_dir=(-1, 0, 0))) as chamfer3_piece_16a_section:
        Polygon((CHAMFER3_SIZE * 0.999621916911, CHAMFER3_SIZE * 0.0274958766106), (-CHAMFER3_SIZE * 0.0274958766106, CHAMFER3_SIZE * 0.999621916911), (0, 0), align=None)
    chamfer3_piece_16a = extrude(amount=6.9858414939829565, mode=Mode.PRIVATE)
    chamfer3_piece_16a = split(chamfer3_piece_16a, bisect_by=Plane(origin=(-5.7, -1.6386173717741457, -5.335103186597028), z_dir=(-1, -9e-17, 0)), keep=Keep.TOP, mode=Mode.PRIVATE)
    with BuildSketch(Plane(origin=(-5.700000000000003, 2.312120935611784, -5.5), x_dir=(-0.9996219169112968, 0, -0.027495876610585647), z_dir=(9e-17, -1, 0))) as chamfer3_piece_16b_section:
        Polygon((CHAMFER3_SIZE * 0.999621916911, -CHAMFER3_SIZE * 0.0274958766106), (-CHAMFER3_SIZE * 0.0274958766106, -CHAMFER3_SIZE * 0.999621916911), (0, 0), align=None)
    chamfer3_piece_16b = extrude(amount=5.0716829879659215, mode=Mode.PRIVATE)
    chamfer3_piece_16b = split(chamfer3_piece_16b, bisect_by=Plane(origin=(-5.864896813402971, -1.473720558371177, -5.33510318659703), z_dir=(0, -1, 0)), keep=Keep.TOP, mode=Mode.PRIVATE)
    chamfer3_piece_16 = chamfer3_piece_16a & chamfer3_piece_16b
    add(chamfer3_piece_16, mode=Mode.SUBTRACT)

    # Chamfer5
    chamfer5_edges = [part.edges().sort_by_distance(p)[0] for p in [
        (46.02017816109365, 6.599999999999998, 7),
        (37.52372055837118, 2.563139720814412, 7),
        (46.020178161093654, 22, 7),
        (37.52372055837117, 26.036860279185586, 7),
    ]]
    chamfer(chamfer5_edges, length=CHAMFER5_SIZE - 0.0001)  # a hair under: the kernel refuses the full size


solid = part.part
